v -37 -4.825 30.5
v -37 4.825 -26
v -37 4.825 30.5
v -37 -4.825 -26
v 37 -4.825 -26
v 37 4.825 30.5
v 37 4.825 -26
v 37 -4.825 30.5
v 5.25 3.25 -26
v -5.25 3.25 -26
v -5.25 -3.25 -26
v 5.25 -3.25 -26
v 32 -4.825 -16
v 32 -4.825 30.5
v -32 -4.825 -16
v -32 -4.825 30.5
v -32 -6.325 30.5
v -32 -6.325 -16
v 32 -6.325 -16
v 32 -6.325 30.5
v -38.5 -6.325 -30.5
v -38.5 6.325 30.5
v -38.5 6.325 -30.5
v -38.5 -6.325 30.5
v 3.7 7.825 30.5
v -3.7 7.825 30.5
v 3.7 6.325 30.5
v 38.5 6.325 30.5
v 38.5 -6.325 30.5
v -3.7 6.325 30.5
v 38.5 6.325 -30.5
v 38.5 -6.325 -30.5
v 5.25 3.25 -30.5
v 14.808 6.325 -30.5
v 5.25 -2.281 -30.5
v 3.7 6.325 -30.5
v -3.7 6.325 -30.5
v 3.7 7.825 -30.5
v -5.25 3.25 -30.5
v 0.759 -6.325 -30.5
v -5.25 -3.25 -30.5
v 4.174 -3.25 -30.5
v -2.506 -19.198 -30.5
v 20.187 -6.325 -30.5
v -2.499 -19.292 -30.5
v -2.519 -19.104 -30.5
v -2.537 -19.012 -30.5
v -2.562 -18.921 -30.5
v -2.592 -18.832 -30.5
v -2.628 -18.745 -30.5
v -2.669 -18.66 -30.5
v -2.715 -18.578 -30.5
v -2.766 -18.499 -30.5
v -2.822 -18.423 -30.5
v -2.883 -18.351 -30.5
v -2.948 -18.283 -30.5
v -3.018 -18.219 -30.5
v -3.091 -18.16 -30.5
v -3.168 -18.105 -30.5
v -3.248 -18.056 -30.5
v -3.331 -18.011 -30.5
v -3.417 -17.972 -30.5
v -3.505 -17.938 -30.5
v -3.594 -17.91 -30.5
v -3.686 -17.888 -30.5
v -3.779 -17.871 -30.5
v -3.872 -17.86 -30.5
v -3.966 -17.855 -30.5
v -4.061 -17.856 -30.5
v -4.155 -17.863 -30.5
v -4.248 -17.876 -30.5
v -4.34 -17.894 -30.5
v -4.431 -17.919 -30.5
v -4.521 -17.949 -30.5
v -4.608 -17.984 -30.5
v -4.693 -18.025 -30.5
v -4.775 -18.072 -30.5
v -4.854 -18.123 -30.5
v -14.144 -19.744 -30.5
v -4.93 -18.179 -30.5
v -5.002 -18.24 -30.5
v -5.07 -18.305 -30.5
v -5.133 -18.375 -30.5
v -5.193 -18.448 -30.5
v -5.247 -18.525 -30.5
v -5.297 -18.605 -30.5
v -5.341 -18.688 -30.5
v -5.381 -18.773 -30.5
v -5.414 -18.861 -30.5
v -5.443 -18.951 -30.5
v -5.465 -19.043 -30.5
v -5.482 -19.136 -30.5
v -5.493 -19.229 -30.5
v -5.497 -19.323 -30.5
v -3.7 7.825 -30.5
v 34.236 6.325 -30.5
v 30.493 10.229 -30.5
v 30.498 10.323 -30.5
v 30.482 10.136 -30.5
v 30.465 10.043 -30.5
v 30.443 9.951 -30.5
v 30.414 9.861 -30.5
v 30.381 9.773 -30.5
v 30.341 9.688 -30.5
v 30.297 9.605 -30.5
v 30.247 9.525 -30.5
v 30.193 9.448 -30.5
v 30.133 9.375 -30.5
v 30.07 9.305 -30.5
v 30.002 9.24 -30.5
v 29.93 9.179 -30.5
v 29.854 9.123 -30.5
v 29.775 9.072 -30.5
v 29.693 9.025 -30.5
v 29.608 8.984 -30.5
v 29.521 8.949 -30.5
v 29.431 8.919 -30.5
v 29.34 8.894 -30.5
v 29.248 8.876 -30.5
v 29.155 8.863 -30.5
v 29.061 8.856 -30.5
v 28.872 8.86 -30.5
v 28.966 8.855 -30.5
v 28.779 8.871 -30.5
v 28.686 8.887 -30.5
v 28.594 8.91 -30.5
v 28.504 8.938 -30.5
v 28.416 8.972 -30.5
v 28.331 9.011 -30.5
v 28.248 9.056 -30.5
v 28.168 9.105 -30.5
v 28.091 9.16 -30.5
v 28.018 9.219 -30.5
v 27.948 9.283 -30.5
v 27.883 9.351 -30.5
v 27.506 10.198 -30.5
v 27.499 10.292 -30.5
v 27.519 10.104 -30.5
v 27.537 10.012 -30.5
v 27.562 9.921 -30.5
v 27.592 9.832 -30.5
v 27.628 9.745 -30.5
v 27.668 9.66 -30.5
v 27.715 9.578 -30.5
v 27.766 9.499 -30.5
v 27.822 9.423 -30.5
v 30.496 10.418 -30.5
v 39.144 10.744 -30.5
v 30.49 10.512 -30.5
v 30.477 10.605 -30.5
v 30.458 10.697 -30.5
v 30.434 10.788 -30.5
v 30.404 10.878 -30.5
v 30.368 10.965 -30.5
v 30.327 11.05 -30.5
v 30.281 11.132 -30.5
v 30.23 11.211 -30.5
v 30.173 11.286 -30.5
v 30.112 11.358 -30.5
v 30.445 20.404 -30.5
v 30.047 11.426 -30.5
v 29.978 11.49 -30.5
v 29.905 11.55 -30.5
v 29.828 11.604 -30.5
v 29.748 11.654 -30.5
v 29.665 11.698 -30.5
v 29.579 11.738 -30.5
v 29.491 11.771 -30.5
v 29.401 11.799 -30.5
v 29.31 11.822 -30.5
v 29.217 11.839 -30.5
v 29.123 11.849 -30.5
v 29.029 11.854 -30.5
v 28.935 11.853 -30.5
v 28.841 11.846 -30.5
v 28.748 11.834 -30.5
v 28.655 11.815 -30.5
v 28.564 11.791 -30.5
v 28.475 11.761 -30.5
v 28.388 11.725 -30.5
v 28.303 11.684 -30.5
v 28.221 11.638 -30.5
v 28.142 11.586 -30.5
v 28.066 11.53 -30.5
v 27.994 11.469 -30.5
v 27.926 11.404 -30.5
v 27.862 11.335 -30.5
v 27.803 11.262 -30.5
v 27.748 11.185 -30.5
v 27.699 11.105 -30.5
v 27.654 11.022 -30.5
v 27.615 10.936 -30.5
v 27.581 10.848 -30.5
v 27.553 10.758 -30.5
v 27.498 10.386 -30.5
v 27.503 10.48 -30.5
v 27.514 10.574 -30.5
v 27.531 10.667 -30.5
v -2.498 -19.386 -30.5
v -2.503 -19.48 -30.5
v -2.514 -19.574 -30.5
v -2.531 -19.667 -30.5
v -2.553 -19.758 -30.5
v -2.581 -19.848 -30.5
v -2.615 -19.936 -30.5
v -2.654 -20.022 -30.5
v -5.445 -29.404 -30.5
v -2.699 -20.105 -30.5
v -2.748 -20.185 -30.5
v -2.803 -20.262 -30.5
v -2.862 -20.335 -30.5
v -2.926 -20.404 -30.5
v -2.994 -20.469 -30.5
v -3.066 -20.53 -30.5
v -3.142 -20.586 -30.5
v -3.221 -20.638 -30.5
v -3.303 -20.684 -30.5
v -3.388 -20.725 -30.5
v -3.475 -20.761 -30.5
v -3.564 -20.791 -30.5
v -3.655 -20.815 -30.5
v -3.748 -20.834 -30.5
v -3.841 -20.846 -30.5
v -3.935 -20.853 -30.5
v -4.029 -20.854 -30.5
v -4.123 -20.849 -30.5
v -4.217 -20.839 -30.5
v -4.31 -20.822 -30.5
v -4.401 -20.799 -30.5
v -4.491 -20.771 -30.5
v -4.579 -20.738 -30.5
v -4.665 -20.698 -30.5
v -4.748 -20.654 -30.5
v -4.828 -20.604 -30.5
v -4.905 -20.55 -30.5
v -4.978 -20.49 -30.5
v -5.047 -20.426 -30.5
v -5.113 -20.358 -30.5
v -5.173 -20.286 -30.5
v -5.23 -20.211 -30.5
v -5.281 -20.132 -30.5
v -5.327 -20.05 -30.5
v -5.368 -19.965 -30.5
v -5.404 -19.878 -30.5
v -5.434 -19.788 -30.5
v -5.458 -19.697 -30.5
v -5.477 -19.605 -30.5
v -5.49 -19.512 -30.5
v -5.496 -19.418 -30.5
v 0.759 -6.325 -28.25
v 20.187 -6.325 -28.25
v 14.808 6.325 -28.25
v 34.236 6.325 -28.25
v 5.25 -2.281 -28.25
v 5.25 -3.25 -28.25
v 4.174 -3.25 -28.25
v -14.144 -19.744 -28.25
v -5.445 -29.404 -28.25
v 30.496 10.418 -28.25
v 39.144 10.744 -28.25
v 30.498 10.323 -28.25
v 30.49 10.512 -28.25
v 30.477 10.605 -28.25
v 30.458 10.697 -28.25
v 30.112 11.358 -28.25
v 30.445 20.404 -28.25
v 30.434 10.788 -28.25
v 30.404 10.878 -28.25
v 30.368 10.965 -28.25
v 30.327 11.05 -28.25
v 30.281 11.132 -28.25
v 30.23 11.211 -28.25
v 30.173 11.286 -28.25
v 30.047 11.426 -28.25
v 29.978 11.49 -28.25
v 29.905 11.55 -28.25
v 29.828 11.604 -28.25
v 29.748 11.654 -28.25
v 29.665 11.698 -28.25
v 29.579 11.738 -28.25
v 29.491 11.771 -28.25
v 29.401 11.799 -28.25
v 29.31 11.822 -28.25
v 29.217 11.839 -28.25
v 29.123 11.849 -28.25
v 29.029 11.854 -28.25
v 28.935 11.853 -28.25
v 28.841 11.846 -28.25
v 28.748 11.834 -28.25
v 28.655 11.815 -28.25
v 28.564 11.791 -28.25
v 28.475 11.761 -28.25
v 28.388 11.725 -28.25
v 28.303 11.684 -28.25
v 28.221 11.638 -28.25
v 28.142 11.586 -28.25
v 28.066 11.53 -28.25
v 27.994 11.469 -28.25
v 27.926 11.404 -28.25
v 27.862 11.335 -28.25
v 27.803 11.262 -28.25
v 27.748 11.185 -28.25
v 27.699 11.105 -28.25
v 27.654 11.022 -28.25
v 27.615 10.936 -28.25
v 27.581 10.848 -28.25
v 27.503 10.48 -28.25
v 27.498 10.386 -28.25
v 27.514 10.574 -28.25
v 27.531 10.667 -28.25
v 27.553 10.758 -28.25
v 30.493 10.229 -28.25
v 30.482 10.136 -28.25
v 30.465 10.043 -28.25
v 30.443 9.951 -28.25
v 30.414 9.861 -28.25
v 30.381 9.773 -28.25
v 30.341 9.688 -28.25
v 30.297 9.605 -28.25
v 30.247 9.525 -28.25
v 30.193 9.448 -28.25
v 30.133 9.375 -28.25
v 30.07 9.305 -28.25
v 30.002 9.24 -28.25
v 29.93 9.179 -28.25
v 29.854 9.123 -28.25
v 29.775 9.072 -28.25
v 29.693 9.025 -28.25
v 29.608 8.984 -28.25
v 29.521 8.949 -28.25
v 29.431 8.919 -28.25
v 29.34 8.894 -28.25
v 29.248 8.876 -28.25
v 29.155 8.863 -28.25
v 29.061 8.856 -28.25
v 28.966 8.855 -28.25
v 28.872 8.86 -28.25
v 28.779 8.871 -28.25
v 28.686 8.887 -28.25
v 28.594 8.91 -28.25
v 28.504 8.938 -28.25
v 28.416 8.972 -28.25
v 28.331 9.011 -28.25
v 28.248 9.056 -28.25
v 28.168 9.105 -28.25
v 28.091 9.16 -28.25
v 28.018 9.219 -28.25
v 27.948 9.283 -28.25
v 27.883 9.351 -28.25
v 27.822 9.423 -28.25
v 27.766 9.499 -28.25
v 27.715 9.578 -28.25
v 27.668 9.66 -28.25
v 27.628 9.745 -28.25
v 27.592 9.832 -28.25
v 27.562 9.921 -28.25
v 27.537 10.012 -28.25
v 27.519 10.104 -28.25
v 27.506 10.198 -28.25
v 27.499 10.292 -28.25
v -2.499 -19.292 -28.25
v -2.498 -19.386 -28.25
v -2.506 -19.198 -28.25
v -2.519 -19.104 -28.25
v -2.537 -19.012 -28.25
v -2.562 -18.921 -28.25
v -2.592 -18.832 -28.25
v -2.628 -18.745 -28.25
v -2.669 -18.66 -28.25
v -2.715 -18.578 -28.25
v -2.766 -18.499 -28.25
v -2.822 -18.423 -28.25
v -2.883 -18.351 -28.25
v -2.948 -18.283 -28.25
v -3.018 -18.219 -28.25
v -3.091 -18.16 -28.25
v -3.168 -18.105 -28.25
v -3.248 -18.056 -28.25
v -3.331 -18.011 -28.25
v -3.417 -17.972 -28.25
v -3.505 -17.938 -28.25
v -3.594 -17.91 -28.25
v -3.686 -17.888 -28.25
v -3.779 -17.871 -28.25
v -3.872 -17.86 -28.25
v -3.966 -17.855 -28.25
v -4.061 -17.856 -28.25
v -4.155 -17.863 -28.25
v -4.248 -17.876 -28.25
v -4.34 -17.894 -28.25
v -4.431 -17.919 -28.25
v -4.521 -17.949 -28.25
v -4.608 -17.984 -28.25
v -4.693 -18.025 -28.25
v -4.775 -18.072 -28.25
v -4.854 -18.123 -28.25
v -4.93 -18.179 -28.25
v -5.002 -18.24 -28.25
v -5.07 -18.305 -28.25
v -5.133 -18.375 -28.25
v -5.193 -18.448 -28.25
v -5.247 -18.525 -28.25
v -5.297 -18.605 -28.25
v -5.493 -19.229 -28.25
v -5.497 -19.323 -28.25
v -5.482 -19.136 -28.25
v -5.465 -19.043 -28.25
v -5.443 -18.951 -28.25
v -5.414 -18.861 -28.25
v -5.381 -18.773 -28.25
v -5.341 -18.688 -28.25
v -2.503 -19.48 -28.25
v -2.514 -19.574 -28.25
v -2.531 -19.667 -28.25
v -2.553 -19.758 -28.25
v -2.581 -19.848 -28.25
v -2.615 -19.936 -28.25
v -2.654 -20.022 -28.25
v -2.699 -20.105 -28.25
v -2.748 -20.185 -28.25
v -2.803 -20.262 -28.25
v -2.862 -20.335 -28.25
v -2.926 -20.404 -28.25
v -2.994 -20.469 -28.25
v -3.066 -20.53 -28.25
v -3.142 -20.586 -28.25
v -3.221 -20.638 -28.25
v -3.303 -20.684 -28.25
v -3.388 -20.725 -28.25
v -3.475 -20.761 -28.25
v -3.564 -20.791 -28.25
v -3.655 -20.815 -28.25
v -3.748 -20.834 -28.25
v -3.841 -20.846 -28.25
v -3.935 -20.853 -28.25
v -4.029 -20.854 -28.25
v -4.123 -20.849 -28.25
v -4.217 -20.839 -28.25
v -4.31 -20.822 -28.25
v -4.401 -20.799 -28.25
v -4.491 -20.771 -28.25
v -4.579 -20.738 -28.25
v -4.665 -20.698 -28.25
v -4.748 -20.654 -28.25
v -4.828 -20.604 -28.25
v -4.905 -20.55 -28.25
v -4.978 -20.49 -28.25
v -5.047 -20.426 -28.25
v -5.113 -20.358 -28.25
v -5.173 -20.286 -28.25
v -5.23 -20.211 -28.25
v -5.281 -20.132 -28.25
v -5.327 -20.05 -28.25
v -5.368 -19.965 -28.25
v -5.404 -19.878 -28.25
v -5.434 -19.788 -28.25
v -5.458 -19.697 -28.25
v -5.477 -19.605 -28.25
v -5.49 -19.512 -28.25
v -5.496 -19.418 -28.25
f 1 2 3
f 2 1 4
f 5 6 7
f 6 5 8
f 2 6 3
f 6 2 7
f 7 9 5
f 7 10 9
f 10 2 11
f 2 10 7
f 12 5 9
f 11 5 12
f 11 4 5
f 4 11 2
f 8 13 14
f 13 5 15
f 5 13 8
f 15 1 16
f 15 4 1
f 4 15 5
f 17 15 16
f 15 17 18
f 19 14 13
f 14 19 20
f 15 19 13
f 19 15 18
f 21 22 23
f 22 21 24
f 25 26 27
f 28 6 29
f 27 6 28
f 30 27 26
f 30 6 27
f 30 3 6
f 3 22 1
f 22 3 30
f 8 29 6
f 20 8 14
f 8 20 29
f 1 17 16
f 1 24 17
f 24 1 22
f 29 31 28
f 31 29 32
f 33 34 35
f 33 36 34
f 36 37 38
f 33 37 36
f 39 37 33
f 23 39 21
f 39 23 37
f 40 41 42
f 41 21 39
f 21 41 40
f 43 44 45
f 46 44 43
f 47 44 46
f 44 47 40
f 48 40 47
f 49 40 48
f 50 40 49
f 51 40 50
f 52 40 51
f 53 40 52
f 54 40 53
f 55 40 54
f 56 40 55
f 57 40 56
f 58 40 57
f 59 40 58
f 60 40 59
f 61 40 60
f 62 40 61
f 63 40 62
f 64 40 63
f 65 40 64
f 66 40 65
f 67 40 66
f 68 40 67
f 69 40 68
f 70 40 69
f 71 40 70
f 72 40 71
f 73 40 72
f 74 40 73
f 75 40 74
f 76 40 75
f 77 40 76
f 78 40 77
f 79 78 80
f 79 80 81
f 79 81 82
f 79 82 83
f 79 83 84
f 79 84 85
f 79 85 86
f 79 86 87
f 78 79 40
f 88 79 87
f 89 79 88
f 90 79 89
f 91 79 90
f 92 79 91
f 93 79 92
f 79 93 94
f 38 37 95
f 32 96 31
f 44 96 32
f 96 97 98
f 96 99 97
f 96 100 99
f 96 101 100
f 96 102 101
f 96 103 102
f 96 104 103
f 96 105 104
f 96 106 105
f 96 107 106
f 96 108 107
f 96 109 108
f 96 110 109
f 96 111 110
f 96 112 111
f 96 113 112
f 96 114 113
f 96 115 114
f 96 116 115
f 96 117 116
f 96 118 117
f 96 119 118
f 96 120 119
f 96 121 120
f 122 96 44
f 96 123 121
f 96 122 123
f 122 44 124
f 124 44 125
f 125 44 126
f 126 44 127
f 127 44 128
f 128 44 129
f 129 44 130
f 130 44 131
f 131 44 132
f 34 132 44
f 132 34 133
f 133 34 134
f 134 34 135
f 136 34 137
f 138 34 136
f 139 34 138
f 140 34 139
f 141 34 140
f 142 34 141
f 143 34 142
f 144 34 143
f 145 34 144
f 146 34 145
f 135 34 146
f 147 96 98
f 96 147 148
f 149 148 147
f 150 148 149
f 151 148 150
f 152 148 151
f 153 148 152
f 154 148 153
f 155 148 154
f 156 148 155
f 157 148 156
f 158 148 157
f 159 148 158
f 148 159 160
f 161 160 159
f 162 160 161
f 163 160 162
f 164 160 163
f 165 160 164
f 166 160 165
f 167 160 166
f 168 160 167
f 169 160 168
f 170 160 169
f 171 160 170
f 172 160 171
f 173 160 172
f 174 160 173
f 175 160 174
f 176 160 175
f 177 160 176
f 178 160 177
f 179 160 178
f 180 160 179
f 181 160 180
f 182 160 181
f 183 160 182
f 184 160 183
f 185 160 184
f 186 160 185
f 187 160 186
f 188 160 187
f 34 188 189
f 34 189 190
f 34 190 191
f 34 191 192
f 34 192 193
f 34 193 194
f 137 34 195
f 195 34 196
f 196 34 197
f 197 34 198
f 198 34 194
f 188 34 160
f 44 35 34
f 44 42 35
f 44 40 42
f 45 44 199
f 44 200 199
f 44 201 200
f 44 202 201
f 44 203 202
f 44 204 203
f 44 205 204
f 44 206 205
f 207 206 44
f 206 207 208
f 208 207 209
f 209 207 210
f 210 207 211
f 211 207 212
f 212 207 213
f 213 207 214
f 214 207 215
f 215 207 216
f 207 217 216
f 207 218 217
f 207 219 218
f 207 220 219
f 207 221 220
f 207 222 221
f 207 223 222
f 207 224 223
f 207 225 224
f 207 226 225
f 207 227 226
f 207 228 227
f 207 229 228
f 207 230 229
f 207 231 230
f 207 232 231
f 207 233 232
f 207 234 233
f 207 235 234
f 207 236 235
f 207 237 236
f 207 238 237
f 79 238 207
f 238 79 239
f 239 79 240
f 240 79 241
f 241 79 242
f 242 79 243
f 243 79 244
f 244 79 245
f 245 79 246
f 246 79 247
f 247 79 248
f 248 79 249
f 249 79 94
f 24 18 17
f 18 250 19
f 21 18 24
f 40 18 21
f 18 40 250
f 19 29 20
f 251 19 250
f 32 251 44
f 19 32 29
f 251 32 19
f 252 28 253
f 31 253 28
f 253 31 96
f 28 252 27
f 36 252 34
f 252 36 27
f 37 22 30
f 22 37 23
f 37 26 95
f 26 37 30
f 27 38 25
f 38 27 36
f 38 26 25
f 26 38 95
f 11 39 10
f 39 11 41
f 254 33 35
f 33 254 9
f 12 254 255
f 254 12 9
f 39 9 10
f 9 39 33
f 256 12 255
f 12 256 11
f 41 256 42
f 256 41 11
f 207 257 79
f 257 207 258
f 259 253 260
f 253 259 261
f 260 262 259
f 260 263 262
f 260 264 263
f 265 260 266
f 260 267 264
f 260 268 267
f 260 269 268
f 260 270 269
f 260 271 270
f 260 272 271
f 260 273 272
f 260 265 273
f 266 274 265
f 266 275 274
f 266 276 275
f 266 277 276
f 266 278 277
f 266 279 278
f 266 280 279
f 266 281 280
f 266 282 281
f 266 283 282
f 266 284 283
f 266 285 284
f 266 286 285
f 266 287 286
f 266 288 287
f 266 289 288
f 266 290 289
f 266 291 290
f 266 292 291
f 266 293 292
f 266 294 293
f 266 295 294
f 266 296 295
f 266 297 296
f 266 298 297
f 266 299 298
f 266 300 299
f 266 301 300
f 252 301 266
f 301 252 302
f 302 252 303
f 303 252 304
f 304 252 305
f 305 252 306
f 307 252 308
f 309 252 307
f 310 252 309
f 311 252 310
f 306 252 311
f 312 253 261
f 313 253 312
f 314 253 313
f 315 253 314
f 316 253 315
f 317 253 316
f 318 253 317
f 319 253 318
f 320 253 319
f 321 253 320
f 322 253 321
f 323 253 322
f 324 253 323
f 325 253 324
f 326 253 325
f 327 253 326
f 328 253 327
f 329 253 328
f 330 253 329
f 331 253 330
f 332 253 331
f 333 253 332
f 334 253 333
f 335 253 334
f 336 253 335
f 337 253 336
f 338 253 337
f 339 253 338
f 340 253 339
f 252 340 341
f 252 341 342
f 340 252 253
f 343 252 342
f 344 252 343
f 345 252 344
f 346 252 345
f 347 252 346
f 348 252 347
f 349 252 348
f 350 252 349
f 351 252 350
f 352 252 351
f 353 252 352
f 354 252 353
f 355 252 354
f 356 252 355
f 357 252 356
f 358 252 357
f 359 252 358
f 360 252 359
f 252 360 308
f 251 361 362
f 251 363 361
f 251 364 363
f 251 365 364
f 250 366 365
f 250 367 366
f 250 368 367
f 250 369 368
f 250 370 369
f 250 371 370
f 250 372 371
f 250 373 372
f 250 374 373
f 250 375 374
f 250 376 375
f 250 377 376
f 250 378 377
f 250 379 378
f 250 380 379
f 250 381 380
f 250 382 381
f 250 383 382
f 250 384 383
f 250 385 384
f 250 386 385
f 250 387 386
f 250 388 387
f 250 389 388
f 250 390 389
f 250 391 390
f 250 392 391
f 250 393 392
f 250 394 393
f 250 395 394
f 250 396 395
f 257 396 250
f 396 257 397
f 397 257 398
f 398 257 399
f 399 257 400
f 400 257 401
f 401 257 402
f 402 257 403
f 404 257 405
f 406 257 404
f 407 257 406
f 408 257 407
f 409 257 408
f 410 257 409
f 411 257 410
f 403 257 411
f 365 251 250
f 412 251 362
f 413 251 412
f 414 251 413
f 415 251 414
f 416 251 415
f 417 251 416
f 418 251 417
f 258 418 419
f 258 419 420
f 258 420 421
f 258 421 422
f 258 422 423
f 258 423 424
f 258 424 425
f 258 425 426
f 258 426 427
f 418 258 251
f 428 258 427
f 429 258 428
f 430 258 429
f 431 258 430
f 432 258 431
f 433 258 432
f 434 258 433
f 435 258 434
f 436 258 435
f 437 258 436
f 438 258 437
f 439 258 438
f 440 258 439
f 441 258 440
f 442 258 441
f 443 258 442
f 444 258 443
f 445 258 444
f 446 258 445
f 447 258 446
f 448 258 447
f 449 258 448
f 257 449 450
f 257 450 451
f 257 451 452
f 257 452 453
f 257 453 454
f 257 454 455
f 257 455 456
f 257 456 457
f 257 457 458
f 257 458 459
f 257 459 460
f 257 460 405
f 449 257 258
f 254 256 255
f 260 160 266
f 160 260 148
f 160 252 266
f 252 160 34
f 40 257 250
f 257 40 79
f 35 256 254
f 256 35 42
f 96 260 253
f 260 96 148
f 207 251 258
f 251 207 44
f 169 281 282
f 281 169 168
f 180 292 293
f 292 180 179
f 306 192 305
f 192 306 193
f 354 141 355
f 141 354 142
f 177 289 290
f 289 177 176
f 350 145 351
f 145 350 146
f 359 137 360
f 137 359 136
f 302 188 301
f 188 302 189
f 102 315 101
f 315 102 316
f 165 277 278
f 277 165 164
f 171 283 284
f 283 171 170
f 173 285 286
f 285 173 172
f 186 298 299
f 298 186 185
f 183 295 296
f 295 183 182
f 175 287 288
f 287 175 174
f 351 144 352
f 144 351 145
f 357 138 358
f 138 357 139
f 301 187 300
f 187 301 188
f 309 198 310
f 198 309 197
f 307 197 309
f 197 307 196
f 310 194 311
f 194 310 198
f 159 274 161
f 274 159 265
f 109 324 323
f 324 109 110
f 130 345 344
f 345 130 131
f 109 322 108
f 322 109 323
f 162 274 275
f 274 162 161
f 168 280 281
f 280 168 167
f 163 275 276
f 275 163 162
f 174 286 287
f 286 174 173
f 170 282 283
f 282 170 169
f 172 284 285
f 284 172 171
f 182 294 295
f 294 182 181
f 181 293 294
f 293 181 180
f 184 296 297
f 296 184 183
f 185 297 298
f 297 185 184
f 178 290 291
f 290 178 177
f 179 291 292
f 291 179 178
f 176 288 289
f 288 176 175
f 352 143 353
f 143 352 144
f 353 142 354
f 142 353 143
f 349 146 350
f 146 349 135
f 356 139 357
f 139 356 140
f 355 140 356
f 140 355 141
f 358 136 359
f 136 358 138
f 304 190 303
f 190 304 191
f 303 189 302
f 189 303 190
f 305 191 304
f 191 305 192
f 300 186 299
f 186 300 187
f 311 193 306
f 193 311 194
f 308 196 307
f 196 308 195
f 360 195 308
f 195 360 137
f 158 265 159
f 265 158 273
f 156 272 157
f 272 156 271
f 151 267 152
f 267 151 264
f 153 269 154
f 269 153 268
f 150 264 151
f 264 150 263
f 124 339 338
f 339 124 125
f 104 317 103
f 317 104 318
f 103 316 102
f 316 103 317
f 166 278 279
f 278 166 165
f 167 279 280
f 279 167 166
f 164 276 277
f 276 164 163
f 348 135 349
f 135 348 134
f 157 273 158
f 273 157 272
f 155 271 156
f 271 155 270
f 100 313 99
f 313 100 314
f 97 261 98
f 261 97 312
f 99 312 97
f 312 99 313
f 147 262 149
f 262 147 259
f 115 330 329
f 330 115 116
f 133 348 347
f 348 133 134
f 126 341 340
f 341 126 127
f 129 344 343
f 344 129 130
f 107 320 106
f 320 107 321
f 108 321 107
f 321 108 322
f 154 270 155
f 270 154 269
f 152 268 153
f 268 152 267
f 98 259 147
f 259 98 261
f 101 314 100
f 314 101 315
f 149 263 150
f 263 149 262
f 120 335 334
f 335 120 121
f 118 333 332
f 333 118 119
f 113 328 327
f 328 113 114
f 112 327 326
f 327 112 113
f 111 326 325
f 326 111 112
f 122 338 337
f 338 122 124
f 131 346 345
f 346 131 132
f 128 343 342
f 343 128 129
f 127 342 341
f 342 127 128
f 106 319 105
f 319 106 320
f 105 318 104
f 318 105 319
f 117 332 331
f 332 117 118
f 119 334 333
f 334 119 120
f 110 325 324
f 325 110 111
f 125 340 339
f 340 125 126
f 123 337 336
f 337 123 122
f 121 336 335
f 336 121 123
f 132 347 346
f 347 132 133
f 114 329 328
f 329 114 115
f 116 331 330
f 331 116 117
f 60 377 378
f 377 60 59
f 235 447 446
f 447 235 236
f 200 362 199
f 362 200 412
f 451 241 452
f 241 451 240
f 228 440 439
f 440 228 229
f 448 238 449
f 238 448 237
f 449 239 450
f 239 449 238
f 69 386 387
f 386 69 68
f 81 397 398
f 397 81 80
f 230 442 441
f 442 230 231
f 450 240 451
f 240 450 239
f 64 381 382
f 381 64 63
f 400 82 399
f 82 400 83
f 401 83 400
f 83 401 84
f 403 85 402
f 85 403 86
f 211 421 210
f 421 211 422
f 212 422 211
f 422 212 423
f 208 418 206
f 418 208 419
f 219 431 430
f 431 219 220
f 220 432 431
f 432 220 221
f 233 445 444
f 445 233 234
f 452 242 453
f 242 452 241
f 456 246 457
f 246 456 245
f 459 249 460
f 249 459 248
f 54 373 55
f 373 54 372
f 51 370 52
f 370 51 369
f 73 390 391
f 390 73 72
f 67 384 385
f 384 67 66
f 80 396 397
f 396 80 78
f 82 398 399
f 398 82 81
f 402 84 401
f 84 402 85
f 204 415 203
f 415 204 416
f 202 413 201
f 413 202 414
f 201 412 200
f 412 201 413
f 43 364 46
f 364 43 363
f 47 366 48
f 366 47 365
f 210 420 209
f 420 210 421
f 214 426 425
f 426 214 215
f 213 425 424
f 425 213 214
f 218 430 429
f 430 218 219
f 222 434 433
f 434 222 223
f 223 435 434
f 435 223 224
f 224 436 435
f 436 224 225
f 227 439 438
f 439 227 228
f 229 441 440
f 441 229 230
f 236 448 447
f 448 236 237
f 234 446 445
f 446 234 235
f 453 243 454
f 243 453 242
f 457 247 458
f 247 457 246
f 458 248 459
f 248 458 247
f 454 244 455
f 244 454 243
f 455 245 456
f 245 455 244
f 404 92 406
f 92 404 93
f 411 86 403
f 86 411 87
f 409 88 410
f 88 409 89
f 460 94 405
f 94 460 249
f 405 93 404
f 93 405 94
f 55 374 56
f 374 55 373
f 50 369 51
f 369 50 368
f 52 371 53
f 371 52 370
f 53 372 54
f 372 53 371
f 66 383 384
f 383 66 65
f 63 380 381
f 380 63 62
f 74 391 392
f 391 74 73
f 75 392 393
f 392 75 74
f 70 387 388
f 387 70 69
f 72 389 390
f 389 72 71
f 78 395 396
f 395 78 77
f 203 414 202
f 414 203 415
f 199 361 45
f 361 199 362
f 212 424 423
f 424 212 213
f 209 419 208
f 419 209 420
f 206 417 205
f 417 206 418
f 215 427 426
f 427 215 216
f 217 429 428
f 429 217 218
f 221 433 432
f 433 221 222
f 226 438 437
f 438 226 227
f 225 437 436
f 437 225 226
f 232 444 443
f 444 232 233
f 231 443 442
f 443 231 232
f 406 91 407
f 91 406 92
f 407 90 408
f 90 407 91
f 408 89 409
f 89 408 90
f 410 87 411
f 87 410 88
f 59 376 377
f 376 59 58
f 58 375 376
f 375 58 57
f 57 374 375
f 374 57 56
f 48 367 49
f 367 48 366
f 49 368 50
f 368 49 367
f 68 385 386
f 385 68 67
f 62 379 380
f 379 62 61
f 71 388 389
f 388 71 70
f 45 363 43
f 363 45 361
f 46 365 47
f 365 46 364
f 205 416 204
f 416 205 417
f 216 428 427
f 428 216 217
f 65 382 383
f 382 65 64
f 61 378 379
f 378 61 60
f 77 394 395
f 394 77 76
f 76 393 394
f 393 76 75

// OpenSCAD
// Dimensiones del movil en mm (si lleva funda, incluida la funda)
ancho = 74;     // Eje X
fondo = 9.65;   // Eje Y
alto  = 145;    // Eje Z

grosor_paredes = 1.5;

// Definicion de Constantes
M3 = 3;

// EJES 
X = 0;
Y = 1;
Z = 2;

// Objetos y relaciones entre sus medidas

// Restricciones
altura_soporte   = alto  * 0.40;    // 40% de la altura del movil
anchura_refuerzo = ancho * 0.10;    // 10% de la anchura del movil
anchura_solapas  = 5;

// Medidas interiores del Soporte => Hueco con las medidas del movil
HUECO    = [ ancho, fondo, altura_soporte ];

// Medidas exteriores del Soporte => Medidas interiores + grosor de las paredes
SOPORTE  = [ HUECO[X] + 2 * grosor_paredes, HUECO[Y] + 2 * grosor_paredes, HUECO[Z] + 2 * grosor_paredes ];

// Hueco con solapas para cortar la parte delantera del soporte
HUECO1   = [ HUECO[X] - 2 * anchura_solapas, HUECO[Y], HUECO[Z] - 2 * anchura_solapas ];

// Hueco para el conector USB
HUECO2   = [ 10.5, 6.5, HUECO[Z] ];

// Refuerzo trasero
REFUERZO = [ anchura_refuerzo, grosor_paredes, SOPORTE[Z] ];

// Pletina de enganche con el posavasos del SEAT Leon
PLETINA  = [ 60, 13, 2.25 ]; 


difference() {
    union() {
        // Soporte    
        cube(SOPORTE,  center = true);

        // Refuerzo trasero
        translate( [0, SOPORTE[Y] / 2 + REFUERZO[Y] / 2, 0 ] )
            cube( REFUERZO, center = true );

    }
    
    // Hueco interior
    translate([0, 0, (SOPORTE[Z] - HUECO[Z]) ])
        union() {
            cube(HUECO,  center = true);
            
            // Hueco delantero
            translate( [ 0, - HUECO1[Y] / 2, (HUECO[Z] - HUECO1[Z]) / 2 ] )
                cube(HUECO1, center = true );
        }
        
    // Hueco conector USB   
    translate([0, 0, - HUECO[Z]/2 ])
        cube( HUECO2, center = true );
}

// Pletina inferior de enganche al posavasos
translate( [ SOPORTE[X]/2 - PLETINA[X]/2 + 4, -4.5, - SOPORTE[Z] / 2 + PLETINA[Z] / 2 ] ) 
    rotate( [ 0, 0, 42 ] )
        difference() {
            cube(PLETINA, center = true);
            
            translate( [ PLETINA[X] / 2 - 6.3 - M3 / 2, 0, 0 ] )
                cylinder( d = M3, h = 2 * PLETINA[Z], center = true, $fn = 100 );

            mirror( [1, 0, 0 ] )
                translate( [ PLETINA[X] / 2 - 6.3 - M3 / 2, 0, 0 ] )
                    cylinder( d=3, h=2 * PLETINA[Z], center = true, $fn = 100 );
        }
